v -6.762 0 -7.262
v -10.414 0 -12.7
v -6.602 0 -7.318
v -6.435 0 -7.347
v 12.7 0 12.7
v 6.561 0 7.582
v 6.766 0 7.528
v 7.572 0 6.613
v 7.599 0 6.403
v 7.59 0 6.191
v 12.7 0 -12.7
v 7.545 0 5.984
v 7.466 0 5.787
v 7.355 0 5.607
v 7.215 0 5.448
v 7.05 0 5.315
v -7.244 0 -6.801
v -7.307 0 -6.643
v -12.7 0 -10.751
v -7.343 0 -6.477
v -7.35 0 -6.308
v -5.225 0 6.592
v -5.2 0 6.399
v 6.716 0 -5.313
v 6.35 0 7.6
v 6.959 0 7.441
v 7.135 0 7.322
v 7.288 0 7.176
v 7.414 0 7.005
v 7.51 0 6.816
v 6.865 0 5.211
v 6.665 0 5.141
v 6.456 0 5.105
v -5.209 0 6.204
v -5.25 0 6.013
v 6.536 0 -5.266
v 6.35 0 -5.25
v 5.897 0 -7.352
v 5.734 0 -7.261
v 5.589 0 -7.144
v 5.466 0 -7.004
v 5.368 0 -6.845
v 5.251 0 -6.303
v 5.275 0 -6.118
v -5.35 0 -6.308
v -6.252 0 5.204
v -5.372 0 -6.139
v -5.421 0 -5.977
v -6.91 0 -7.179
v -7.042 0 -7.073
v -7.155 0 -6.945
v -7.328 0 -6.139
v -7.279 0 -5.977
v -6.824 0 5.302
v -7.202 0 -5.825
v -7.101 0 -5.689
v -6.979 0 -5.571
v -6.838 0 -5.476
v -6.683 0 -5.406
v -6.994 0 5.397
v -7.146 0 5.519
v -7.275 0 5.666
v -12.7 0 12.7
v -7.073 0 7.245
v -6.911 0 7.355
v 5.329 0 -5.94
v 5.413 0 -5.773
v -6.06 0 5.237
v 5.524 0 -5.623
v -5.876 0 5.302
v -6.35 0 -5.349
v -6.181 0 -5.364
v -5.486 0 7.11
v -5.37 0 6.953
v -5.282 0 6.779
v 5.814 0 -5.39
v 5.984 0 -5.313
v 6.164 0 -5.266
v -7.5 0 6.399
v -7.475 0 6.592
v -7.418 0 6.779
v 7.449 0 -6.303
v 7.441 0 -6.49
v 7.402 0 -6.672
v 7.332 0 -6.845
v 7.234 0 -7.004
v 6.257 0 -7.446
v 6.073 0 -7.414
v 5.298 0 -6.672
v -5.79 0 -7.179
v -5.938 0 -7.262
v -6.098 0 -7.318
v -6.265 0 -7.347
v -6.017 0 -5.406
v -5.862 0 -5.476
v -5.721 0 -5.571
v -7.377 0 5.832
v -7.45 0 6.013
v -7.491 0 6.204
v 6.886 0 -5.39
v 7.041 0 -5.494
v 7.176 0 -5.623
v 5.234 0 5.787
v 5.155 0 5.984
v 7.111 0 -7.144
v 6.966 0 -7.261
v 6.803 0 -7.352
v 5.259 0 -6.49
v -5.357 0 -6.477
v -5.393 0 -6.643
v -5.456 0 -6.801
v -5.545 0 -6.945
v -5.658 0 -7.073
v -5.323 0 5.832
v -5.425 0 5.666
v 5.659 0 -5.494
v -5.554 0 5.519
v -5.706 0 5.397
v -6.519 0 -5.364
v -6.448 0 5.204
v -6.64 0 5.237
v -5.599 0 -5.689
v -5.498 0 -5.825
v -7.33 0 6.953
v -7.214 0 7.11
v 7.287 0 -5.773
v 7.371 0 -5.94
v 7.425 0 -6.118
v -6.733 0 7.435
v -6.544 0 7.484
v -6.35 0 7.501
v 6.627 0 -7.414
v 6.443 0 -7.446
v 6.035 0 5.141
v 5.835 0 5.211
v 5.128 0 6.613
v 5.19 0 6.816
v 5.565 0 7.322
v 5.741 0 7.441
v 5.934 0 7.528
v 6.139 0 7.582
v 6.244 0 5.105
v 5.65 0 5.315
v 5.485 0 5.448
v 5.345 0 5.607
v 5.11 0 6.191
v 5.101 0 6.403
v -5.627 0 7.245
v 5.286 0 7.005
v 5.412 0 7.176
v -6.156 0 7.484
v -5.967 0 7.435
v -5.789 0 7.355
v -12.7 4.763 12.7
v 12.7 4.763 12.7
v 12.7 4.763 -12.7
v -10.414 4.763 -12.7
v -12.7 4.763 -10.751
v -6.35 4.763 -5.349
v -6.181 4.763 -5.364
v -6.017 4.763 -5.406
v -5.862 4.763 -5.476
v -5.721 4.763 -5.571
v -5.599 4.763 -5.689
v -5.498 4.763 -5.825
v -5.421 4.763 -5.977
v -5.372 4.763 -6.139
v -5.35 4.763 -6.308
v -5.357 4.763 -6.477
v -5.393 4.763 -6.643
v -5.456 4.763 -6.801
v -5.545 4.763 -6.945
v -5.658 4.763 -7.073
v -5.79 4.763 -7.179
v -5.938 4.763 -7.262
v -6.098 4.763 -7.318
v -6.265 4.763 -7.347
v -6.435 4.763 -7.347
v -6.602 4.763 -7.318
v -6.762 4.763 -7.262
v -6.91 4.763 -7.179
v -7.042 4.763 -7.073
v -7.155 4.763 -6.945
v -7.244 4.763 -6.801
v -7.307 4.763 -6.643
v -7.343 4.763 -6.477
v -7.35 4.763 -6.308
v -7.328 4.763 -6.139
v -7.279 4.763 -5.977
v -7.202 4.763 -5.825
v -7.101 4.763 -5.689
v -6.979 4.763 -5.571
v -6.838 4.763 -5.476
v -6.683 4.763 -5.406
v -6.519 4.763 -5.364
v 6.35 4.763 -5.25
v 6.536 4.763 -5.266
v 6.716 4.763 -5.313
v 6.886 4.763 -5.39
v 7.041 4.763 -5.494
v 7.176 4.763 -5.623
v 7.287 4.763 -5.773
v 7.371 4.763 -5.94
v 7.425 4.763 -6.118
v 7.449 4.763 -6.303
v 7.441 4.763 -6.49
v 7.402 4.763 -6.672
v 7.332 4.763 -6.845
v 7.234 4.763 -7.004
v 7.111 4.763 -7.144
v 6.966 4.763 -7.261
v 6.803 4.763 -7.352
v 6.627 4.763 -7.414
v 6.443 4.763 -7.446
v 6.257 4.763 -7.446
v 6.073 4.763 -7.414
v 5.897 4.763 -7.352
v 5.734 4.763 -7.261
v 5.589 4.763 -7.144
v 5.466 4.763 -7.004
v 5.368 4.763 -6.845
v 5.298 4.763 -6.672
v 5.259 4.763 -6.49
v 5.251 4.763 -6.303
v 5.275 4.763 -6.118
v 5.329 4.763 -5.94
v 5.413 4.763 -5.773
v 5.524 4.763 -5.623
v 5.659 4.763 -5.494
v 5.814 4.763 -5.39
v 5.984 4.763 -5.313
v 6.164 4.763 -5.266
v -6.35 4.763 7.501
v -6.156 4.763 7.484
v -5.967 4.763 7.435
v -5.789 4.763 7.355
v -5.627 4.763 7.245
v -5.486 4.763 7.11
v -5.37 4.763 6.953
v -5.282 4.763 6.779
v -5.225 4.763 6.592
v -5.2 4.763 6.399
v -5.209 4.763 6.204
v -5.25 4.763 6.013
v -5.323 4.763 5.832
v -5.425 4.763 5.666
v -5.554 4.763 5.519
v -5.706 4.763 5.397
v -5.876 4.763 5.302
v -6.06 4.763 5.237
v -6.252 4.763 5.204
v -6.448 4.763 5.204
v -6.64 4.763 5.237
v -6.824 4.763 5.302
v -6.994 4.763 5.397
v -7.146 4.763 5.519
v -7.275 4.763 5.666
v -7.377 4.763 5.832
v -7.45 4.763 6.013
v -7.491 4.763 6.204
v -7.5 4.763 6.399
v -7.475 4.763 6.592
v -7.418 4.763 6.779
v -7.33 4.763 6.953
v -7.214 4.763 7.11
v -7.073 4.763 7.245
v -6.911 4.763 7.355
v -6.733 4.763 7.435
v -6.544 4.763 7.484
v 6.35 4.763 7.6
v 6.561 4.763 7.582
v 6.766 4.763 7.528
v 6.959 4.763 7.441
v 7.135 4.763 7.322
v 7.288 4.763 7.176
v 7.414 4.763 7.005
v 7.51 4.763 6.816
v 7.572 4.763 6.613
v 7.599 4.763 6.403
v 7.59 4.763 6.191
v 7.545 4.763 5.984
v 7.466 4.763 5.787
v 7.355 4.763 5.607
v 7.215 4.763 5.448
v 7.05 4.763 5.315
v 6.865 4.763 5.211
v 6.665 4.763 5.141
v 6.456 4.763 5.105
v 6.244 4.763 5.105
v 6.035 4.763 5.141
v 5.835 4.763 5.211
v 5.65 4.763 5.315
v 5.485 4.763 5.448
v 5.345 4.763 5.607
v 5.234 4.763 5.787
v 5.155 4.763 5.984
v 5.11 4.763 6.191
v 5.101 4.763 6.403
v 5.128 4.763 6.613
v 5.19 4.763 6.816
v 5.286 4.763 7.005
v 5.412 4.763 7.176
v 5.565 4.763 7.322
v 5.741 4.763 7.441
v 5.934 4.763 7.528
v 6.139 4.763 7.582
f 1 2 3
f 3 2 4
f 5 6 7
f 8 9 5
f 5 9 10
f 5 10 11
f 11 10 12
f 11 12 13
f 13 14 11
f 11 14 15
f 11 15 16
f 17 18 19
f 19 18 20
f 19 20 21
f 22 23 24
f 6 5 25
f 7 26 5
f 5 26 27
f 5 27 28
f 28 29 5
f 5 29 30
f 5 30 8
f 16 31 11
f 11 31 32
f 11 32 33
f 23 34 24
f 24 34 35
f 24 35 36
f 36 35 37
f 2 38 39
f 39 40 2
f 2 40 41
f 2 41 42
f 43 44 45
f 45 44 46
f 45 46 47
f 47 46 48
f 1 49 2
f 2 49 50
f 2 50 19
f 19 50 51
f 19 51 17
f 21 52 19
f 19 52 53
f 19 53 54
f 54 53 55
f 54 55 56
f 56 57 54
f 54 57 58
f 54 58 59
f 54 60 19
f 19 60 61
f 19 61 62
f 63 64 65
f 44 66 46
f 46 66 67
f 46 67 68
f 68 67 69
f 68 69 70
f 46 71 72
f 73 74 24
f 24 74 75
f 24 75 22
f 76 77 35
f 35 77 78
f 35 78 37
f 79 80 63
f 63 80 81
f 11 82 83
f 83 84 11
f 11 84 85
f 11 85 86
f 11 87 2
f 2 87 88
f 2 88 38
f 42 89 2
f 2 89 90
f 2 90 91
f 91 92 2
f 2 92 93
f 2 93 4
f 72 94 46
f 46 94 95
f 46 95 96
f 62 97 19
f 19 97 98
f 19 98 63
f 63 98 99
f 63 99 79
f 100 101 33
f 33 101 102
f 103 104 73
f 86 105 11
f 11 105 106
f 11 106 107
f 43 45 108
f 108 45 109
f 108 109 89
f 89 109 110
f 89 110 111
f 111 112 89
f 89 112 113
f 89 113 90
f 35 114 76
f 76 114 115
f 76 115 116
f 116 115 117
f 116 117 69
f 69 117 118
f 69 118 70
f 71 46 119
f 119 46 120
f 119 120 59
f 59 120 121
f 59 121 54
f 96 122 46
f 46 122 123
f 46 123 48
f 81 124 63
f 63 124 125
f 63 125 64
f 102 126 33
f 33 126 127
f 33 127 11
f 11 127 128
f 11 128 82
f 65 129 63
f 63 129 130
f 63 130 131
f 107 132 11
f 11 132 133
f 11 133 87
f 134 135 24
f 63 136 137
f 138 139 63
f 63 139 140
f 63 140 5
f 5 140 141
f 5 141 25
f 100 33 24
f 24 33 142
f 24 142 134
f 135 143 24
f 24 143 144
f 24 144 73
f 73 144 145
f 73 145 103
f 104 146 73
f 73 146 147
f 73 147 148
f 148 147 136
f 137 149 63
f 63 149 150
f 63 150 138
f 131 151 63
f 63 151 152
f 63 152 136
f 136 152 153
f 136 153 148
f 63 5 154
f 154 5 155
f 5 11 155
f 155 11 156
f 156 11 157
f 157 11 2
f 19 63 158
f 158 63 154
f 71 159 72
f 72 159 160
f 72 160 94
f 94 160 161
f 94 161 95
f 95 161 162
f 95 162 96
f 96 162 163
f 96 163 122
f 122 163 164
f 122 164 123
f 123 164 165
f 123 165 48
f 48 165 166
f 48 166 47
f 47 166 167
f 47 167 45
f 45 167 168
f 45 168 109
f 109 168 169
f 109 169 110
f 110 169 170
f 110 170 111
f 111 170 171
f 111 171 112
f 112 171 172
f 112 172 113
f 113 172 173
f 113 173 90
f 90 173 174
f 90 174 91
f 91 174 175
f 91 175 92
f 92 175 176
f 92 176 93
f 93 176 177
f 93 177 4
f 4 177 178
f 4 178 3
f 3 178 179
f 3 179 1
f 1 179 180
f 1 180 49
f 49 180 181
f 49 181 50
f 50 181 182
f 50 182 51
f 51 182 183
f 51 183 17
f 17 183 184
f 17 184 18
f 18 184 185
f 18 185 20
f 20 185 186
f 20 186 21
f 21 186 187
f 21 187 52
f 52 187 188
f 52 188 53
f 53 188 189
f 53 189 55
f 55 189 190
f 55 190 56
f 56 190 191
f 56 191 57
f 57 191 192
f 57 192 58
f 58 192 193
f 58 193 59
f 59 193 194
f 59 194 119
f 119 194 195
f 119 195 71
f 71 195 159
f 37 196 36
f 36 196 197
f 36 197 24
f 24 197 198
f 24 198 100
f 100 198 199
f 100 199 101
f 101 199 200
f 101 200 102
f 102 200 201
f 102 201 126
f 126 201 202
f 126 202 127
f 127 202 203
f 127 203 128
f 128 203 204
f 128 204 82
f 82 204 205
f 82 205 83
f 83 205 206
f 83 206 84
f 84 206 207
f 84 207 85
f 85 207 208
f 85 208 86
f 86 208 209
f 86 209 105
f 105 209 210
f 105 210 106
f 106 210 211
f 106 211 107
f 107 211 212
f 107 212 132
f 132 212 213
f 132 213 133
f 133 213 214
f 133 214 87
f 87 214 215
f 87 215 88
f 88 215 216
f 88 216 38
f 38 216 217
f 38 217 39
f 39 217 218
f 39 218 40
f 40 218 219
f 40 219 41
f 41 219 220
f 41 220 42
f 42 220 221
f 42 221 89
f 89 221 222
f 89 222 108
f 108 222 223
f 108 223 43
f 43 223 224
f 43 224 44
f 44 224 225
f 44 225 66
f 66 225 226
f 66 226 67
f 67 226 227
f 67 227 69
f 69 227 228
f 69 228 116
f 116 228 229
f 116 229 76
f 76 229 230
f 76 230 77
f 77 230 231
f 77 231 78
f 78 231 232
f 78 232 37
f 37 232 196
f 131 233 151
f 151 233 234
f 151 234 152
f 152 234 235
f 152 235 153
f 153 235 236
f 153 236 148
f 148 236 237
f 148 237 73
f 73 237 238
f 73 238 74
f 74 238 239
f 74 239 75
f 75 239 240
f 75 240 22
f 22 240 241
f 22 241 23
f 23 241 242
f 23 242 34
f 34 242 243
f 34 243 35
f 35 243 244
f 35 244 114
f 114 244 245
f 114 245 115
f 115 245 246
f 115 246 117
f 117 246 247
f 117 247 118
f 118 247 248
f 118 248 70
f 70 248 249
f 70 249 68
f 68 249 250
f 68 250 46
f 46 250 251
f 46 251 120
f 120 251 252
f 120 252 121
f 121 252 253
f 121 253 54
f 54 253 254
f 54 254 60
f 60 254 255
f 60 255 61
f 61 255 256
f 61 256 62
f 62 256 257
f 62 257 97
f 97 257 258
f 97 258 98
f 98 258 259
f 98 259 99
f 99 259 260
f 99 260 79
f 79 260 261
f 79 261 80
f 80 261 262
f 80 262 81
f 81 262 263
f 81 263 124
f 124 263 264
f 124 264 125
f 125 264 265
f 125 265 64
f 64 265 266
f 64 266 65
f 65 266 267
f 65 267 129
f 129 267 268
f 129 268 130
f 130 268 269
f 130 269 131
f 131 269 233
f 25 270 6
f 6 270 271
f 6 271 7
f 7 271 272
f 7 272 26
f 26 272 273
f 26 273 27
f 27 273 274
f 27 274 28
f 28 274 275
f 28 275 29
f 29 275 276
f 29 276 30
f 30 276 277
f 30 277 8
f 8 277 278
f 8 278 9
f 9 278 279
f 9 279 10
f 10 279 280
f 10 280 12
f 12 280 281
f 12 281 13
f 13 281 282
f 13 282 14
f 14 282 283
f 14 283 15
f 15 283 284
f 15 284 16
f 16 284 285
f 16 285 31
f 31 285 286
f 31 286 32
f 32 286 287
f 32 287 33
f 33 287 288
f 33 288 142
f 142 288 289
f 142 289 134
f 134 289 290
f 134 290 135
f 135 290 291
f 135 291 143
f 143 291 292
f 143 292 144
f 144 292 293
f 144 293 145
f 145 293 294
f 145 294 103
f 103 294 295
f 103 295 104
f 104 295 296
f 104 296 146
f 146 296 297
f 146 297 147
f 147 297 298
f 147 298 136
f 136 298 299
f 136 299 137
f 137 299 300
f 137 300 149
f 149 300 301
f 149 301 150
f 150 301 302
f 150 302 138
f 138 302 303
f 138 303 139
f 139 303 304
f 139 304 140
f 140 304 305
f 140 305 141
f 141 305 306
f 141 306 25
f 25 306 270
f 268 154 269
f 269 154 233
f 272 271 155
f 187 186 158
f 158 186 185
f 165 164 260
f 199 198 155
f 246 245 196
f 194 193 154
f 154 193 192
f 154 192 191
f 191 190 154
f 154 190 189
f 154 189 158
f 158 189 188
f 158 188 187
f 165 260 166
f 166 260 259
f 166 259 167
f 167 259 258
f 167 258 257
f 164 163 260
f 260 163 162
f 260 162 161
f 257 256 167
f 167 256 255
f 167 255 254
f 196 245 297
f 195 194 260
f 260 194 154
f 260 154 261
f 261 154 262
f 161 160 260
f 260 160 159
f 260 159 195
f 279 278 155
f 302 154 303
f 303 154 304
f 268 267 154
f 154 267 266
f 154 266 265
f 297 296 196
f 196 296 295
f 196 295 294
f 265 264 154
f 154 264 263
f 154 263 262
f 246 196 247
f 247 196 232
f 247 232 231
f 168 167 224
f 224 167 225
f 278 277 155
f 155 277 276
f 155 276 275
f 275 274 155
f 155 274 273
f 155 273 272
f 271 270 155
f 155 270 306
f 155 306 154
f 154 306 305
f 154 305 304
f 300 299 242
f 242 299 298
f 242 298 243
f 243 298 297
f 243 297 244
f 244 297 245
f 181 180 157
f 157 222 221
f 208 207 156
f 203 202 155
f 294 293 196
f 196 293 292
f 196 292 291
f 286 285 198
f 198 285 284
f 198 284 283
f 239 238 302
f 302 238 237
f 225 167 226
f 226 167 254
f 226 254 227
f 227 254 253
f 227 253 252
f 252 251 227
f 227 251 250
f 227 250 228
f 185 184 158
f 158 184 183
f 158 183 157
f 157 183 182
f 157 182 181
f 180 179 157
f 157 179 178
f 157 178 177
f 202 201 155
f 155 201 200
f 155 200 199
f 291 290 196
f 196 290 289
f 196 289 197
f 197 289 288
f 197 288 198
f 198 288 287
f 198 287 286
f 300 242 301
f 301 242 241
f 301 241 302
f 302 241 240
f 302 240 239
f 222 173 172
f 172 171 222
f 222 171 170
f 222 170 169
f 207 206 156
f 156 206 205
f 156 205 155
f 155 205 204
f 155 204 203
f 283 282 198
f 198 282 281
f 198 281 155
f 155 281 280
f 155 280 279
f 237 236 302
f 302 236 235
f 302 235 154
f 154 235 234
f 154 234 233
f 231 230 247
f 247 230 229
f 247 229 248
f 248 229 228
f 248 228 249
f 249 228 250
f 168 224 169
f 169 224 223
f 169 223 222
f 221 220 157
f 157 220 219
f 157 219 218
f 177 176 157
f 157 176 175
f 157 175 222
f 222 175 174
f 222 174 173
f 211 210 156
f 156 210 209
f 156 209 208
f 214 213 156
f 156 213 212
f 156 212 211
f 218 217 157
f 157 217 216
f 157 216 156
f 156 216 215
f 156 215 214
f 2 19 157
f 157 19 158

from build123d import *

# Parameters (mm, degrees)
SKETCH1_W           = 50.8
SKETCH1_H           = 50.8
BOSS_EXTRUDE1_DEPTH = 4.7625
SKETCH2_W           = 50.8
SKETCH2_H           = 50.8
SKETCH2_W_2         = 25.4
SKETCH2_H_2         = 25.4
SKETCH2_R           = 1.00076
SKETCH2_R_2         = 1.09982
SKETCH2_R_3         = 1.15062
SKETCH2_R_4         = 1.24968
CUT_EXTRUDE1_DEPTH  = 5.7625
CUT_EXTRUDE2_DEPTH  = 5.7625


with BuildPart() as part:
    # Sketch1 → Boss-Extrude1 (new body)
    with BuildSketch(Plane(origin=(0, 0, 0), x_dir=(1, 0, 0), z_dir=(0, 1, 0))):
        Rectangle(SKETCH1_W, SKETCH1_H)
    extrude(amount=BOSS_EXTRUDE1_DEPTH)

    # Sketch2 → Cut-Extrude1 (cut, through all)
    with BuildSketch(Plane(origin=(0, 4.7625, 0), x_dir=(1, 0, 0), z_dir=(0, 1, 0))):
        Rectangle(SKETCH2_W, SKETCH2_H)
        Rectangle(SKETCH2_W_2, SKETCH2_H_2, mode=Mode.SUBTRACT)
        with Locations((-6.35, 6.35)):
            Circle(SKETCH2_R)
        with Locations((6.35, 6.35)):
            Circle(SKETCH2_R_2)
        with Locations((-6.35, -6.35)):
            Circle(SKETCH2_R_3)
        with Locations((6.35, -6.35)):
            Circle(SKETCH2_R_4)
    extrude(amount=-CUT_EXTRUDE1_DEPTH, mode=Mode.SUBTRACT)

    # Sketch3 → Cut-Extrude2 (cut, through all)
    with BuildSketch(Plane(origin=(0, 4.7625, 0), x_dir=(1, 0, 0), z_dir=(0, 1, 0))):
        Polygon((-10.414075549, 12.7), (-12.7, 12.7), (-12.7, 10.750584792), align=None)
    extrude(amount=-CUT_EXTRUDE2_DEPTH, mode=Mode.SUBTRACT)


solid = part.part
